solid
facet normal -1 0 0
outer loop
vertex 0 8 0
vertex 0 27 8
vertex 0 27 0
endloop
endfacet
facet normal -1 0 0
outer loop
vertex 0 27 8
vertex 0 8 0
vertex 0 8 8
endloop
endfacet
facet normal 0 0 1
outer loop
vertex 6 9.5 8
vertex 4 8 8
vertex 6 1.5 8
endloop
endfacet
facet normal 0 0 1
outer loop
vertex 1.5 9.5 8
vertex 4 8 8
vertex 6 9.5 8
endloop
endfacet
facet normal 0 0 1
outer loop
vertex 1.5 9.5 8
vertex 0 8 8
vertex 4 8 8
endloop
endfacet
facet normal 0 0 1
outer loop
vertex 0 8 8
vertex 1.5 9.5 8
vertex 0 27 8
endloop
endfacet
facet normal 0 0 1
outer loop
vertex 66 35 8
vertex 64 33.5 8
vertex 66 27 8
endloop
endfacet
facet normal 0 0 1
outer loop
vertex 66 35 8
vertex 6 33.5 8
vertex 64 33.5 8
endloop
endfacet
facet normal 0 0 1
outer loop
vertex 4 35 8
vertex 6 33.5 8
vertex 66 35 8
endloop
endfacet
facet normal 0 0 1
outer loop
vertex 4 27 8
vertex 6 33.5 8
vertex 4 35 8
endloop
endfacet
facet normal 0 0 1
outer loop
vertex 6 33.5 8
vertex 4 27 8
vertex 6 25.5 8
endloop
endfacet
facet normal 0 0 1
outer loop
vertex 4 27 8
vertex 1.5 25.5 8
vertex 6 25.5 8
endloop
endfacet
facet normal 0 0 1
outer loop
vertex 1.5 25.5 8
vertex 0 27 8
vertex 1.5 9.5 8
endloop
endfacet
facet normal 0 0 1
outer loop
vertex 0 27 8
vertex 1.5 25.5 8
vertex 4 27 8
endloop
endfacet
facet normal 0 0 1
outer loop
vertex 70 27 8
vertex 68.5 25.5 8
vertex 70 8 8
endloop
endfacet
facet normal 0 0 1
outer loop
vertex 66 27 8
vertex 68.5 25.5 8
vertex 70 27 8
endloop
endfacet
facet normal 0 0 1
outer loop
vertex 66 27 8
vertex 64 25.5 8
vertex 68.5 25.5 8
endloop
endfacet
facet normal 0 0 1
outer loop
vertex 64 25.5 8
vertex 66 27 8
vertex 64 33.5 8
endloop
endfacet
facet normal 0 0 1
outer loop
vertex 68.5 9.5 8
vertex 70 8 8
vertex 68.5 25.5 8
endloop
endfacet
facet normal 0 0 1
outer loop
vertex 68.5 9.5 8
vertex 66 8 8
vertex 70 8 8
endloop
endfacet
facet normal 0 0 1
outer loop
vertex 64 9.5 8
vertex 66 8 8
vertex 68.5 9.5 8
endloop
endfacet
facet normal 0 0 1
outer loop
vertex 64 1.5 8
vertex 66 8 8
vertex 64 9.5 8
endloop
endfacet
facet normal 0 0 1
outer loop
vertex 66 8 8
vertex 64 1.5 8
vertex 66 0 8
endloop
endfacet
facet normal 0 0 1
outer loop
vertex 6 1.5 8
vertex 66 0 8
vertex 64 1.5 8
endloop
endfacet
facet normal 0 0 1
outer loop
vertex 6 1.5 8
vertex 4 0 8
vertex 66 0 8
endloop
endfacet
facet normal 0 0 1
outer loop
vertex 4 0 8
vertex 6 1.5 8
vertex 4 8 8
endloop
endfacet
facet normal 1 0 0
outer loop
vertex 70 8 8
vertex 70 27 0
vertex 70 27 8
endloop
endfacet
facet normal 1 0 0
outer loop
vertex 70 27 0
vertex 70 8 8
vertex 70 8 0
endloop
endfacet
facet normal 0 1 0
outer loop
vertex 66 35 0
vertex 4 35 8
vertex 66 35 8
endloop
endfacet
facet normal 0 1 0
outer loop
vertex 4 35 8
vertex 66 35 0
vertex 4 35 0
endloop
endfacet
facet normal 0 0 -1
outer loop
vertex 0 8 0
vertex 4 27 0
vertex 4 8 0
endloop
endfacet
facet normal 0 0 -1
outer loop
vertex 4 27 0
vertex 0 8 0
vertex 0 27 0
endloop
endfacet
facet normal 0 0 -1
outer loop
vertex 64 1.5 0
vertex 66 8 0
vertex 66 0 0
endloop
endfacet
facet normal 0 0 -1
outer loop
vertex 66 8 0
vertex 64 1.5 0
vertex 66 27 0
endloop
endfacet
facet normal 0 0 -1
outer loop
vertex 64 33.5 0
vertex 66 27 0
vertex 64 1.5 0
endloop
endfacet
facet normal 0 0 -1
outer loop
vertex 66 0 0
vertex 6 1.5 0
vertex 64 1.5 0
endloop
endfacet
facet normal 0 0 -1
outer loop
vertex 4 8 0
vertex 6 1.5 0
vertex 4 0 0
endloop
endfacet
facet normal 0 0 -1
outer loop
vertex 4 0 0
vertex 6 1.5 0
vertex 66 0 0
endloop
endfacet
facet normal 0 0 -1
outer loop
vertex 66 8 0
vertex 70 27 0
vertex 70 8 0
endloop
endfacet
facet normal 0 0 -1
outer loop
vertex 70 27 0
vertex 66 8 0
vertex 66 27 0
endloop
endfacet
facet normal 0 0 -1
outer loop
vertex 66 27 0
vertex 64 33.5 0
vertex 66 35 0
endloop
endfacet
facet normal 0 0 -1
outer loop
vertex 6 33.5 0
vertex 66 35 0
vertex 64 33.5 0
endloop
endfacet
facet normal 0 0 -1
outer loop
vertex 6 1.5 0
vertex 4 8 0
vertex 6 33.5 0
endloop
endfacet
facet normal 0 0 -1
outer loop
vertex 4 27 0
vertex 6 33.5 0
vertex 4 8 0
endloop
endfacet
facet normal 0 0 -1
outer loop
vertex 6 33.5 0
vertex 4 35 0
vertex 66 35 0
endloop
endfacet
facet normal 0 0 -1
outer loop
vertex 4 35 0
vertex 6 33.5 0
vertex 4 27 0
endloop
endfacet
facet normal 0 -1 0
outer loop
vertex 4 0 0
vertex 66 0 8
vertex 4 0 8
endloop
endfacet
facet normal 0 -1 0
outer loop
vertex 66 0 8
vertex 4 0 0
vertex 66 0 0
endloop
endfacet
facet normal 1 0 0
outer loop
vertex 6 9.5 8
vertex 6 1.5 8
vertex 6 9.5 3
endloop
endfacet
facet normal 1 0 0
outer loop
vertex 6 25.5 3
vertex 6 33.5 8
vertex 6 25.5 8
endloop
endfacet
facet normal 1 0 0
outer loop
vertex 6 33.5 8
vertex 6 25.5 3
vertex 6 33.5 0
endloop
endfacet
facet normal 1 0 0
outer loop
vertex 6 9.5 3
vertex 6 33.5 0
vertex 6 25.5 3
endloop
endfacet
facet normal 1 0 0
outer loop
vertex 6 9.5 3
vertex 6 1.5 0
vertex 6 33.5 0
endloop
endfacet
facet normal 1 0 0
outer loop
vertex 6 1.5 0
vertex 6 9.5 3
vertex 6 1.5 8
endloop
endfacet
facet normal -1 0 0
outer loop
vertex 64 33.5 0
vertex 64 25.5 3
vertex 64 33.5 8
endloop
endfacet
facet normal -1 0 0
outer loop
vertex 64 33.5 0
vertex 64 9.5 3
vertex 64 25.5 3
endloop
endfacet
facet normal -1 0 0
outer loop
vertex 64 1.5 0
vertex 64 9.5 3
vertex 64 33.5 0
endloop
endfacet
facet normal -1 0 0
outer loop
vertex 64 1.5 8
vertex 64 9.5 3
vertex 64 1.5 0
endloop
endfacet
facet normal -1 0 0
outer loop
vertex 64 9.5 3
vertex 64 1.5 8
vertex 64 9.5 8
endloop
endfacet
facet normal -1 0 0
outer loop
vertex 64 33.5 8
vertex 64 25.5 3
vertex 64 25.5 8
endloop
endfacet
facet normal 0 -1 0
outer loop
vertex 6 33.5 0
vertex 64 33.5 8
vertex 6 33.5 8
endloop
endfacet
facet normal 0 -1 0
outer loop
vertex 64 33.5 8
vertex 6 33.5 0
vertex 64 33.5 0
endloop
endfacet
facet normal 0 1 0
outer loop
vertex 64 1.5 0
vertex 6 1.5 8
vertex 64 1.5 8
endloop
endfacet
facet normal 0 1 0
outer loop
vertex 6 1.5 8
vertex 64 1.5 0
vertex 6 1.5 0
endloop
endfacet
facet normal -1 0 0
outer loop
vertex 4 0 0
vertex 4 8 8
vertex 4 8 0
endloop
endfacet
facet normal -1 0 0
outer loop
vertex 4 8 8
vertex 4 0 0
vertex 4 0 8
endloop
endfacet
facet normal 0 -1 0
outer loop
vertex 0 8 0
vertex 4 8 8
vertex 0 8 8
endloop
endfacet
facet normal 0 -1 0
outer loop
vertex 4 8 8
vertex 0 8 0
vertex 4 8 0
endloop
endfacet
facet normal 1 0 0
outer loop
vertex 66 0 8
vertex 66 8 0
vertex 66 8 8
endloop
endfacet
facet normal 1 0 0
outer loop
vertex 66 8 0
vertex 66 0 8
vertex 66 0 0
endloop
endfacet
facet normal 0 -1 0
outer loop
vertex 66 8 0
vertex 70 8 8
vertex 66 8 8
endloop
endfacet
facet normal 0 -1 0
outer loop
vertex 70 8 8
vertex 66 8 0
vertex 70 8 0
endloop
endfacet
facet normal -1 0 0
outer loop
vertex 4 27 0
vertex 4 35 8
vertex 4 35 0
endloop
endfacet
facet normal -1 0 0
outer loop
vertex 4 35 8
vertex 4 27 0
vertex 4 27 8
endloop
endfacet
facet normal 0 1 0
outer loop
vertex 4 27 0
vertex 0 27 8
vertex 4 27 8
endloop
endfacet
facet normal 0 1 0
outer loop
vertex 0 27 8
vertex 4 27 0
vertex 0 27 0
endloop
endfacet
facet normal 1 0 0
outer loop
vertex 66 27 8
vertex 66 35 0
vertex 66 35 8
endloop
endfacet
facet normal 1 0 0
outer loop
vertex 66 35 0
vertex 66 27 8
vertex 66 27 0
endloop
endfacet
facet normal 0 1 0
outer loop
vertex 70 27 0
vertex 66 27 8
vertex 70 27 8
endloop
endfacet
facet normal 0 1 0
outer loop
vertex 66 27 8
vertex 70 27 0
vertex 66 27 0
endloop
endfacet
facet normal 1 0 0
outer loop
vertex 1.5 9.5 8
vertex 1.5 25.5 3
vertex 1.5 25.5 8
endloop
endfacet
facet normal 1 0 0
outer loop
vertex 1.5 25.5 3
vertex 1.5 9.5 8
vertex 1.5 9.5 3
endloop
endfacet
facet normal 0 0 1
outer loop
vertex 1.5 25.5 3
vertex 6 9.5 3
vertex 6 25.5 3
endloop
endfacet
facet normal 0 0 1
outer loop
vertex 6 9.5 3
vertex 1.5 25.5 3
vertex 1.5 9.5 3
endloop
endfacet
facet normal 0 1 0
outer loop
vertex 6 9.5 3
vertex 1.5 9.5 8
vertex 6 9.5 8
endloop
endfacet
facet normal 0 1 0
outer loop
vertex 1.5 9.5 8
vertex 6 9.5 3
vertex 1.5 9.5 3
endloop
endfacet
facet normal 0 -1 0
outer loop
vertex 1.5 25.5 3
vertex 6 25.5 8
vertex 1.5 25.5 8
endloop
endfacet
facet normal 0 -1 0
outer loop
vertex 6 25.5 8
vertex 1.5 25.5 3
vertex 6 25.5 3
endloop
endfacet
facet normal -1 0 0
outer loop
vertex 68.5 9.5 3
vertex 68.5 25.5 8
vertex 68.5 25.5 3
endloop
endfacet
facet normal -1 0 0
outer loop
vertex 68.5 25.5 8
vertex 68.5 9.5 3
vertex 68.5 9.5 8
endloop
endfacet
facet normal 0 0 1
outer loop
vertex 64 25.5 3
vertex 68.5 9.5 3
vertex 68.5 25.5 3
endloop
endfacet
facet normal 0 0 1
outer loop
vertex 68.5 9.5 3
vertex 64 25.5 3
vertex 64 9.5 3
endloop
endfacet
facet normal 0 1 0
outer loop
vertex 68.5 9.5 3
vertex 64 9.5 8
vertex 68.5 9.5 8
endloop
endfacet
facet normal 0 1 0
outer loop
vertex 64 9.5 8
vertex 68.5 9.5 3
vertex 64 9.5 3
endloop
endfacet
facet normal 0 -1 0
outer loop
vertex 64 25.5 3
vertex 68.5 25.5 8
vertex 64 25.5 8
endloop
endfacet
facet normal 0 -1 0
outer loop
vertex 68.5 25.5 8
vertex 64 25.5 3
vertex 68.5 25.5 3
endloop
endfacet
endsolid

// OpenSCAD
pbox=8; //hauteur(z)
hbox=70; //profondeur(x)
lbox=35; //largeur(y)
ebox=1.5; //epaisseur
hscreen=29;
lscreen=28;
pibox=8; //hauteur interrieure(z)
hibox=hbox-ebox*2-9;
libox=lbox-ebox*2;


difference() {
    cube([hbox,lbox,pbox]); 
translate([ebox+4.5,ebox,0]) 
    cube([hibox,libox,pibox]);  
cube([4,8,8]);
translate([hbox-4,0,0]) cube([4,8,8]);
translate([0,lbox-8,0]) cube([4,8,8]);
translate([hbox-4,lbox-8,0]) cube([4,8,8]);
translate([ebox,ebox+8,ebox*2]) cube([6,16,8]);
translate([hbox-ebox-6,ebox+8,ebox*2]) cube([6,16,8]);
}
